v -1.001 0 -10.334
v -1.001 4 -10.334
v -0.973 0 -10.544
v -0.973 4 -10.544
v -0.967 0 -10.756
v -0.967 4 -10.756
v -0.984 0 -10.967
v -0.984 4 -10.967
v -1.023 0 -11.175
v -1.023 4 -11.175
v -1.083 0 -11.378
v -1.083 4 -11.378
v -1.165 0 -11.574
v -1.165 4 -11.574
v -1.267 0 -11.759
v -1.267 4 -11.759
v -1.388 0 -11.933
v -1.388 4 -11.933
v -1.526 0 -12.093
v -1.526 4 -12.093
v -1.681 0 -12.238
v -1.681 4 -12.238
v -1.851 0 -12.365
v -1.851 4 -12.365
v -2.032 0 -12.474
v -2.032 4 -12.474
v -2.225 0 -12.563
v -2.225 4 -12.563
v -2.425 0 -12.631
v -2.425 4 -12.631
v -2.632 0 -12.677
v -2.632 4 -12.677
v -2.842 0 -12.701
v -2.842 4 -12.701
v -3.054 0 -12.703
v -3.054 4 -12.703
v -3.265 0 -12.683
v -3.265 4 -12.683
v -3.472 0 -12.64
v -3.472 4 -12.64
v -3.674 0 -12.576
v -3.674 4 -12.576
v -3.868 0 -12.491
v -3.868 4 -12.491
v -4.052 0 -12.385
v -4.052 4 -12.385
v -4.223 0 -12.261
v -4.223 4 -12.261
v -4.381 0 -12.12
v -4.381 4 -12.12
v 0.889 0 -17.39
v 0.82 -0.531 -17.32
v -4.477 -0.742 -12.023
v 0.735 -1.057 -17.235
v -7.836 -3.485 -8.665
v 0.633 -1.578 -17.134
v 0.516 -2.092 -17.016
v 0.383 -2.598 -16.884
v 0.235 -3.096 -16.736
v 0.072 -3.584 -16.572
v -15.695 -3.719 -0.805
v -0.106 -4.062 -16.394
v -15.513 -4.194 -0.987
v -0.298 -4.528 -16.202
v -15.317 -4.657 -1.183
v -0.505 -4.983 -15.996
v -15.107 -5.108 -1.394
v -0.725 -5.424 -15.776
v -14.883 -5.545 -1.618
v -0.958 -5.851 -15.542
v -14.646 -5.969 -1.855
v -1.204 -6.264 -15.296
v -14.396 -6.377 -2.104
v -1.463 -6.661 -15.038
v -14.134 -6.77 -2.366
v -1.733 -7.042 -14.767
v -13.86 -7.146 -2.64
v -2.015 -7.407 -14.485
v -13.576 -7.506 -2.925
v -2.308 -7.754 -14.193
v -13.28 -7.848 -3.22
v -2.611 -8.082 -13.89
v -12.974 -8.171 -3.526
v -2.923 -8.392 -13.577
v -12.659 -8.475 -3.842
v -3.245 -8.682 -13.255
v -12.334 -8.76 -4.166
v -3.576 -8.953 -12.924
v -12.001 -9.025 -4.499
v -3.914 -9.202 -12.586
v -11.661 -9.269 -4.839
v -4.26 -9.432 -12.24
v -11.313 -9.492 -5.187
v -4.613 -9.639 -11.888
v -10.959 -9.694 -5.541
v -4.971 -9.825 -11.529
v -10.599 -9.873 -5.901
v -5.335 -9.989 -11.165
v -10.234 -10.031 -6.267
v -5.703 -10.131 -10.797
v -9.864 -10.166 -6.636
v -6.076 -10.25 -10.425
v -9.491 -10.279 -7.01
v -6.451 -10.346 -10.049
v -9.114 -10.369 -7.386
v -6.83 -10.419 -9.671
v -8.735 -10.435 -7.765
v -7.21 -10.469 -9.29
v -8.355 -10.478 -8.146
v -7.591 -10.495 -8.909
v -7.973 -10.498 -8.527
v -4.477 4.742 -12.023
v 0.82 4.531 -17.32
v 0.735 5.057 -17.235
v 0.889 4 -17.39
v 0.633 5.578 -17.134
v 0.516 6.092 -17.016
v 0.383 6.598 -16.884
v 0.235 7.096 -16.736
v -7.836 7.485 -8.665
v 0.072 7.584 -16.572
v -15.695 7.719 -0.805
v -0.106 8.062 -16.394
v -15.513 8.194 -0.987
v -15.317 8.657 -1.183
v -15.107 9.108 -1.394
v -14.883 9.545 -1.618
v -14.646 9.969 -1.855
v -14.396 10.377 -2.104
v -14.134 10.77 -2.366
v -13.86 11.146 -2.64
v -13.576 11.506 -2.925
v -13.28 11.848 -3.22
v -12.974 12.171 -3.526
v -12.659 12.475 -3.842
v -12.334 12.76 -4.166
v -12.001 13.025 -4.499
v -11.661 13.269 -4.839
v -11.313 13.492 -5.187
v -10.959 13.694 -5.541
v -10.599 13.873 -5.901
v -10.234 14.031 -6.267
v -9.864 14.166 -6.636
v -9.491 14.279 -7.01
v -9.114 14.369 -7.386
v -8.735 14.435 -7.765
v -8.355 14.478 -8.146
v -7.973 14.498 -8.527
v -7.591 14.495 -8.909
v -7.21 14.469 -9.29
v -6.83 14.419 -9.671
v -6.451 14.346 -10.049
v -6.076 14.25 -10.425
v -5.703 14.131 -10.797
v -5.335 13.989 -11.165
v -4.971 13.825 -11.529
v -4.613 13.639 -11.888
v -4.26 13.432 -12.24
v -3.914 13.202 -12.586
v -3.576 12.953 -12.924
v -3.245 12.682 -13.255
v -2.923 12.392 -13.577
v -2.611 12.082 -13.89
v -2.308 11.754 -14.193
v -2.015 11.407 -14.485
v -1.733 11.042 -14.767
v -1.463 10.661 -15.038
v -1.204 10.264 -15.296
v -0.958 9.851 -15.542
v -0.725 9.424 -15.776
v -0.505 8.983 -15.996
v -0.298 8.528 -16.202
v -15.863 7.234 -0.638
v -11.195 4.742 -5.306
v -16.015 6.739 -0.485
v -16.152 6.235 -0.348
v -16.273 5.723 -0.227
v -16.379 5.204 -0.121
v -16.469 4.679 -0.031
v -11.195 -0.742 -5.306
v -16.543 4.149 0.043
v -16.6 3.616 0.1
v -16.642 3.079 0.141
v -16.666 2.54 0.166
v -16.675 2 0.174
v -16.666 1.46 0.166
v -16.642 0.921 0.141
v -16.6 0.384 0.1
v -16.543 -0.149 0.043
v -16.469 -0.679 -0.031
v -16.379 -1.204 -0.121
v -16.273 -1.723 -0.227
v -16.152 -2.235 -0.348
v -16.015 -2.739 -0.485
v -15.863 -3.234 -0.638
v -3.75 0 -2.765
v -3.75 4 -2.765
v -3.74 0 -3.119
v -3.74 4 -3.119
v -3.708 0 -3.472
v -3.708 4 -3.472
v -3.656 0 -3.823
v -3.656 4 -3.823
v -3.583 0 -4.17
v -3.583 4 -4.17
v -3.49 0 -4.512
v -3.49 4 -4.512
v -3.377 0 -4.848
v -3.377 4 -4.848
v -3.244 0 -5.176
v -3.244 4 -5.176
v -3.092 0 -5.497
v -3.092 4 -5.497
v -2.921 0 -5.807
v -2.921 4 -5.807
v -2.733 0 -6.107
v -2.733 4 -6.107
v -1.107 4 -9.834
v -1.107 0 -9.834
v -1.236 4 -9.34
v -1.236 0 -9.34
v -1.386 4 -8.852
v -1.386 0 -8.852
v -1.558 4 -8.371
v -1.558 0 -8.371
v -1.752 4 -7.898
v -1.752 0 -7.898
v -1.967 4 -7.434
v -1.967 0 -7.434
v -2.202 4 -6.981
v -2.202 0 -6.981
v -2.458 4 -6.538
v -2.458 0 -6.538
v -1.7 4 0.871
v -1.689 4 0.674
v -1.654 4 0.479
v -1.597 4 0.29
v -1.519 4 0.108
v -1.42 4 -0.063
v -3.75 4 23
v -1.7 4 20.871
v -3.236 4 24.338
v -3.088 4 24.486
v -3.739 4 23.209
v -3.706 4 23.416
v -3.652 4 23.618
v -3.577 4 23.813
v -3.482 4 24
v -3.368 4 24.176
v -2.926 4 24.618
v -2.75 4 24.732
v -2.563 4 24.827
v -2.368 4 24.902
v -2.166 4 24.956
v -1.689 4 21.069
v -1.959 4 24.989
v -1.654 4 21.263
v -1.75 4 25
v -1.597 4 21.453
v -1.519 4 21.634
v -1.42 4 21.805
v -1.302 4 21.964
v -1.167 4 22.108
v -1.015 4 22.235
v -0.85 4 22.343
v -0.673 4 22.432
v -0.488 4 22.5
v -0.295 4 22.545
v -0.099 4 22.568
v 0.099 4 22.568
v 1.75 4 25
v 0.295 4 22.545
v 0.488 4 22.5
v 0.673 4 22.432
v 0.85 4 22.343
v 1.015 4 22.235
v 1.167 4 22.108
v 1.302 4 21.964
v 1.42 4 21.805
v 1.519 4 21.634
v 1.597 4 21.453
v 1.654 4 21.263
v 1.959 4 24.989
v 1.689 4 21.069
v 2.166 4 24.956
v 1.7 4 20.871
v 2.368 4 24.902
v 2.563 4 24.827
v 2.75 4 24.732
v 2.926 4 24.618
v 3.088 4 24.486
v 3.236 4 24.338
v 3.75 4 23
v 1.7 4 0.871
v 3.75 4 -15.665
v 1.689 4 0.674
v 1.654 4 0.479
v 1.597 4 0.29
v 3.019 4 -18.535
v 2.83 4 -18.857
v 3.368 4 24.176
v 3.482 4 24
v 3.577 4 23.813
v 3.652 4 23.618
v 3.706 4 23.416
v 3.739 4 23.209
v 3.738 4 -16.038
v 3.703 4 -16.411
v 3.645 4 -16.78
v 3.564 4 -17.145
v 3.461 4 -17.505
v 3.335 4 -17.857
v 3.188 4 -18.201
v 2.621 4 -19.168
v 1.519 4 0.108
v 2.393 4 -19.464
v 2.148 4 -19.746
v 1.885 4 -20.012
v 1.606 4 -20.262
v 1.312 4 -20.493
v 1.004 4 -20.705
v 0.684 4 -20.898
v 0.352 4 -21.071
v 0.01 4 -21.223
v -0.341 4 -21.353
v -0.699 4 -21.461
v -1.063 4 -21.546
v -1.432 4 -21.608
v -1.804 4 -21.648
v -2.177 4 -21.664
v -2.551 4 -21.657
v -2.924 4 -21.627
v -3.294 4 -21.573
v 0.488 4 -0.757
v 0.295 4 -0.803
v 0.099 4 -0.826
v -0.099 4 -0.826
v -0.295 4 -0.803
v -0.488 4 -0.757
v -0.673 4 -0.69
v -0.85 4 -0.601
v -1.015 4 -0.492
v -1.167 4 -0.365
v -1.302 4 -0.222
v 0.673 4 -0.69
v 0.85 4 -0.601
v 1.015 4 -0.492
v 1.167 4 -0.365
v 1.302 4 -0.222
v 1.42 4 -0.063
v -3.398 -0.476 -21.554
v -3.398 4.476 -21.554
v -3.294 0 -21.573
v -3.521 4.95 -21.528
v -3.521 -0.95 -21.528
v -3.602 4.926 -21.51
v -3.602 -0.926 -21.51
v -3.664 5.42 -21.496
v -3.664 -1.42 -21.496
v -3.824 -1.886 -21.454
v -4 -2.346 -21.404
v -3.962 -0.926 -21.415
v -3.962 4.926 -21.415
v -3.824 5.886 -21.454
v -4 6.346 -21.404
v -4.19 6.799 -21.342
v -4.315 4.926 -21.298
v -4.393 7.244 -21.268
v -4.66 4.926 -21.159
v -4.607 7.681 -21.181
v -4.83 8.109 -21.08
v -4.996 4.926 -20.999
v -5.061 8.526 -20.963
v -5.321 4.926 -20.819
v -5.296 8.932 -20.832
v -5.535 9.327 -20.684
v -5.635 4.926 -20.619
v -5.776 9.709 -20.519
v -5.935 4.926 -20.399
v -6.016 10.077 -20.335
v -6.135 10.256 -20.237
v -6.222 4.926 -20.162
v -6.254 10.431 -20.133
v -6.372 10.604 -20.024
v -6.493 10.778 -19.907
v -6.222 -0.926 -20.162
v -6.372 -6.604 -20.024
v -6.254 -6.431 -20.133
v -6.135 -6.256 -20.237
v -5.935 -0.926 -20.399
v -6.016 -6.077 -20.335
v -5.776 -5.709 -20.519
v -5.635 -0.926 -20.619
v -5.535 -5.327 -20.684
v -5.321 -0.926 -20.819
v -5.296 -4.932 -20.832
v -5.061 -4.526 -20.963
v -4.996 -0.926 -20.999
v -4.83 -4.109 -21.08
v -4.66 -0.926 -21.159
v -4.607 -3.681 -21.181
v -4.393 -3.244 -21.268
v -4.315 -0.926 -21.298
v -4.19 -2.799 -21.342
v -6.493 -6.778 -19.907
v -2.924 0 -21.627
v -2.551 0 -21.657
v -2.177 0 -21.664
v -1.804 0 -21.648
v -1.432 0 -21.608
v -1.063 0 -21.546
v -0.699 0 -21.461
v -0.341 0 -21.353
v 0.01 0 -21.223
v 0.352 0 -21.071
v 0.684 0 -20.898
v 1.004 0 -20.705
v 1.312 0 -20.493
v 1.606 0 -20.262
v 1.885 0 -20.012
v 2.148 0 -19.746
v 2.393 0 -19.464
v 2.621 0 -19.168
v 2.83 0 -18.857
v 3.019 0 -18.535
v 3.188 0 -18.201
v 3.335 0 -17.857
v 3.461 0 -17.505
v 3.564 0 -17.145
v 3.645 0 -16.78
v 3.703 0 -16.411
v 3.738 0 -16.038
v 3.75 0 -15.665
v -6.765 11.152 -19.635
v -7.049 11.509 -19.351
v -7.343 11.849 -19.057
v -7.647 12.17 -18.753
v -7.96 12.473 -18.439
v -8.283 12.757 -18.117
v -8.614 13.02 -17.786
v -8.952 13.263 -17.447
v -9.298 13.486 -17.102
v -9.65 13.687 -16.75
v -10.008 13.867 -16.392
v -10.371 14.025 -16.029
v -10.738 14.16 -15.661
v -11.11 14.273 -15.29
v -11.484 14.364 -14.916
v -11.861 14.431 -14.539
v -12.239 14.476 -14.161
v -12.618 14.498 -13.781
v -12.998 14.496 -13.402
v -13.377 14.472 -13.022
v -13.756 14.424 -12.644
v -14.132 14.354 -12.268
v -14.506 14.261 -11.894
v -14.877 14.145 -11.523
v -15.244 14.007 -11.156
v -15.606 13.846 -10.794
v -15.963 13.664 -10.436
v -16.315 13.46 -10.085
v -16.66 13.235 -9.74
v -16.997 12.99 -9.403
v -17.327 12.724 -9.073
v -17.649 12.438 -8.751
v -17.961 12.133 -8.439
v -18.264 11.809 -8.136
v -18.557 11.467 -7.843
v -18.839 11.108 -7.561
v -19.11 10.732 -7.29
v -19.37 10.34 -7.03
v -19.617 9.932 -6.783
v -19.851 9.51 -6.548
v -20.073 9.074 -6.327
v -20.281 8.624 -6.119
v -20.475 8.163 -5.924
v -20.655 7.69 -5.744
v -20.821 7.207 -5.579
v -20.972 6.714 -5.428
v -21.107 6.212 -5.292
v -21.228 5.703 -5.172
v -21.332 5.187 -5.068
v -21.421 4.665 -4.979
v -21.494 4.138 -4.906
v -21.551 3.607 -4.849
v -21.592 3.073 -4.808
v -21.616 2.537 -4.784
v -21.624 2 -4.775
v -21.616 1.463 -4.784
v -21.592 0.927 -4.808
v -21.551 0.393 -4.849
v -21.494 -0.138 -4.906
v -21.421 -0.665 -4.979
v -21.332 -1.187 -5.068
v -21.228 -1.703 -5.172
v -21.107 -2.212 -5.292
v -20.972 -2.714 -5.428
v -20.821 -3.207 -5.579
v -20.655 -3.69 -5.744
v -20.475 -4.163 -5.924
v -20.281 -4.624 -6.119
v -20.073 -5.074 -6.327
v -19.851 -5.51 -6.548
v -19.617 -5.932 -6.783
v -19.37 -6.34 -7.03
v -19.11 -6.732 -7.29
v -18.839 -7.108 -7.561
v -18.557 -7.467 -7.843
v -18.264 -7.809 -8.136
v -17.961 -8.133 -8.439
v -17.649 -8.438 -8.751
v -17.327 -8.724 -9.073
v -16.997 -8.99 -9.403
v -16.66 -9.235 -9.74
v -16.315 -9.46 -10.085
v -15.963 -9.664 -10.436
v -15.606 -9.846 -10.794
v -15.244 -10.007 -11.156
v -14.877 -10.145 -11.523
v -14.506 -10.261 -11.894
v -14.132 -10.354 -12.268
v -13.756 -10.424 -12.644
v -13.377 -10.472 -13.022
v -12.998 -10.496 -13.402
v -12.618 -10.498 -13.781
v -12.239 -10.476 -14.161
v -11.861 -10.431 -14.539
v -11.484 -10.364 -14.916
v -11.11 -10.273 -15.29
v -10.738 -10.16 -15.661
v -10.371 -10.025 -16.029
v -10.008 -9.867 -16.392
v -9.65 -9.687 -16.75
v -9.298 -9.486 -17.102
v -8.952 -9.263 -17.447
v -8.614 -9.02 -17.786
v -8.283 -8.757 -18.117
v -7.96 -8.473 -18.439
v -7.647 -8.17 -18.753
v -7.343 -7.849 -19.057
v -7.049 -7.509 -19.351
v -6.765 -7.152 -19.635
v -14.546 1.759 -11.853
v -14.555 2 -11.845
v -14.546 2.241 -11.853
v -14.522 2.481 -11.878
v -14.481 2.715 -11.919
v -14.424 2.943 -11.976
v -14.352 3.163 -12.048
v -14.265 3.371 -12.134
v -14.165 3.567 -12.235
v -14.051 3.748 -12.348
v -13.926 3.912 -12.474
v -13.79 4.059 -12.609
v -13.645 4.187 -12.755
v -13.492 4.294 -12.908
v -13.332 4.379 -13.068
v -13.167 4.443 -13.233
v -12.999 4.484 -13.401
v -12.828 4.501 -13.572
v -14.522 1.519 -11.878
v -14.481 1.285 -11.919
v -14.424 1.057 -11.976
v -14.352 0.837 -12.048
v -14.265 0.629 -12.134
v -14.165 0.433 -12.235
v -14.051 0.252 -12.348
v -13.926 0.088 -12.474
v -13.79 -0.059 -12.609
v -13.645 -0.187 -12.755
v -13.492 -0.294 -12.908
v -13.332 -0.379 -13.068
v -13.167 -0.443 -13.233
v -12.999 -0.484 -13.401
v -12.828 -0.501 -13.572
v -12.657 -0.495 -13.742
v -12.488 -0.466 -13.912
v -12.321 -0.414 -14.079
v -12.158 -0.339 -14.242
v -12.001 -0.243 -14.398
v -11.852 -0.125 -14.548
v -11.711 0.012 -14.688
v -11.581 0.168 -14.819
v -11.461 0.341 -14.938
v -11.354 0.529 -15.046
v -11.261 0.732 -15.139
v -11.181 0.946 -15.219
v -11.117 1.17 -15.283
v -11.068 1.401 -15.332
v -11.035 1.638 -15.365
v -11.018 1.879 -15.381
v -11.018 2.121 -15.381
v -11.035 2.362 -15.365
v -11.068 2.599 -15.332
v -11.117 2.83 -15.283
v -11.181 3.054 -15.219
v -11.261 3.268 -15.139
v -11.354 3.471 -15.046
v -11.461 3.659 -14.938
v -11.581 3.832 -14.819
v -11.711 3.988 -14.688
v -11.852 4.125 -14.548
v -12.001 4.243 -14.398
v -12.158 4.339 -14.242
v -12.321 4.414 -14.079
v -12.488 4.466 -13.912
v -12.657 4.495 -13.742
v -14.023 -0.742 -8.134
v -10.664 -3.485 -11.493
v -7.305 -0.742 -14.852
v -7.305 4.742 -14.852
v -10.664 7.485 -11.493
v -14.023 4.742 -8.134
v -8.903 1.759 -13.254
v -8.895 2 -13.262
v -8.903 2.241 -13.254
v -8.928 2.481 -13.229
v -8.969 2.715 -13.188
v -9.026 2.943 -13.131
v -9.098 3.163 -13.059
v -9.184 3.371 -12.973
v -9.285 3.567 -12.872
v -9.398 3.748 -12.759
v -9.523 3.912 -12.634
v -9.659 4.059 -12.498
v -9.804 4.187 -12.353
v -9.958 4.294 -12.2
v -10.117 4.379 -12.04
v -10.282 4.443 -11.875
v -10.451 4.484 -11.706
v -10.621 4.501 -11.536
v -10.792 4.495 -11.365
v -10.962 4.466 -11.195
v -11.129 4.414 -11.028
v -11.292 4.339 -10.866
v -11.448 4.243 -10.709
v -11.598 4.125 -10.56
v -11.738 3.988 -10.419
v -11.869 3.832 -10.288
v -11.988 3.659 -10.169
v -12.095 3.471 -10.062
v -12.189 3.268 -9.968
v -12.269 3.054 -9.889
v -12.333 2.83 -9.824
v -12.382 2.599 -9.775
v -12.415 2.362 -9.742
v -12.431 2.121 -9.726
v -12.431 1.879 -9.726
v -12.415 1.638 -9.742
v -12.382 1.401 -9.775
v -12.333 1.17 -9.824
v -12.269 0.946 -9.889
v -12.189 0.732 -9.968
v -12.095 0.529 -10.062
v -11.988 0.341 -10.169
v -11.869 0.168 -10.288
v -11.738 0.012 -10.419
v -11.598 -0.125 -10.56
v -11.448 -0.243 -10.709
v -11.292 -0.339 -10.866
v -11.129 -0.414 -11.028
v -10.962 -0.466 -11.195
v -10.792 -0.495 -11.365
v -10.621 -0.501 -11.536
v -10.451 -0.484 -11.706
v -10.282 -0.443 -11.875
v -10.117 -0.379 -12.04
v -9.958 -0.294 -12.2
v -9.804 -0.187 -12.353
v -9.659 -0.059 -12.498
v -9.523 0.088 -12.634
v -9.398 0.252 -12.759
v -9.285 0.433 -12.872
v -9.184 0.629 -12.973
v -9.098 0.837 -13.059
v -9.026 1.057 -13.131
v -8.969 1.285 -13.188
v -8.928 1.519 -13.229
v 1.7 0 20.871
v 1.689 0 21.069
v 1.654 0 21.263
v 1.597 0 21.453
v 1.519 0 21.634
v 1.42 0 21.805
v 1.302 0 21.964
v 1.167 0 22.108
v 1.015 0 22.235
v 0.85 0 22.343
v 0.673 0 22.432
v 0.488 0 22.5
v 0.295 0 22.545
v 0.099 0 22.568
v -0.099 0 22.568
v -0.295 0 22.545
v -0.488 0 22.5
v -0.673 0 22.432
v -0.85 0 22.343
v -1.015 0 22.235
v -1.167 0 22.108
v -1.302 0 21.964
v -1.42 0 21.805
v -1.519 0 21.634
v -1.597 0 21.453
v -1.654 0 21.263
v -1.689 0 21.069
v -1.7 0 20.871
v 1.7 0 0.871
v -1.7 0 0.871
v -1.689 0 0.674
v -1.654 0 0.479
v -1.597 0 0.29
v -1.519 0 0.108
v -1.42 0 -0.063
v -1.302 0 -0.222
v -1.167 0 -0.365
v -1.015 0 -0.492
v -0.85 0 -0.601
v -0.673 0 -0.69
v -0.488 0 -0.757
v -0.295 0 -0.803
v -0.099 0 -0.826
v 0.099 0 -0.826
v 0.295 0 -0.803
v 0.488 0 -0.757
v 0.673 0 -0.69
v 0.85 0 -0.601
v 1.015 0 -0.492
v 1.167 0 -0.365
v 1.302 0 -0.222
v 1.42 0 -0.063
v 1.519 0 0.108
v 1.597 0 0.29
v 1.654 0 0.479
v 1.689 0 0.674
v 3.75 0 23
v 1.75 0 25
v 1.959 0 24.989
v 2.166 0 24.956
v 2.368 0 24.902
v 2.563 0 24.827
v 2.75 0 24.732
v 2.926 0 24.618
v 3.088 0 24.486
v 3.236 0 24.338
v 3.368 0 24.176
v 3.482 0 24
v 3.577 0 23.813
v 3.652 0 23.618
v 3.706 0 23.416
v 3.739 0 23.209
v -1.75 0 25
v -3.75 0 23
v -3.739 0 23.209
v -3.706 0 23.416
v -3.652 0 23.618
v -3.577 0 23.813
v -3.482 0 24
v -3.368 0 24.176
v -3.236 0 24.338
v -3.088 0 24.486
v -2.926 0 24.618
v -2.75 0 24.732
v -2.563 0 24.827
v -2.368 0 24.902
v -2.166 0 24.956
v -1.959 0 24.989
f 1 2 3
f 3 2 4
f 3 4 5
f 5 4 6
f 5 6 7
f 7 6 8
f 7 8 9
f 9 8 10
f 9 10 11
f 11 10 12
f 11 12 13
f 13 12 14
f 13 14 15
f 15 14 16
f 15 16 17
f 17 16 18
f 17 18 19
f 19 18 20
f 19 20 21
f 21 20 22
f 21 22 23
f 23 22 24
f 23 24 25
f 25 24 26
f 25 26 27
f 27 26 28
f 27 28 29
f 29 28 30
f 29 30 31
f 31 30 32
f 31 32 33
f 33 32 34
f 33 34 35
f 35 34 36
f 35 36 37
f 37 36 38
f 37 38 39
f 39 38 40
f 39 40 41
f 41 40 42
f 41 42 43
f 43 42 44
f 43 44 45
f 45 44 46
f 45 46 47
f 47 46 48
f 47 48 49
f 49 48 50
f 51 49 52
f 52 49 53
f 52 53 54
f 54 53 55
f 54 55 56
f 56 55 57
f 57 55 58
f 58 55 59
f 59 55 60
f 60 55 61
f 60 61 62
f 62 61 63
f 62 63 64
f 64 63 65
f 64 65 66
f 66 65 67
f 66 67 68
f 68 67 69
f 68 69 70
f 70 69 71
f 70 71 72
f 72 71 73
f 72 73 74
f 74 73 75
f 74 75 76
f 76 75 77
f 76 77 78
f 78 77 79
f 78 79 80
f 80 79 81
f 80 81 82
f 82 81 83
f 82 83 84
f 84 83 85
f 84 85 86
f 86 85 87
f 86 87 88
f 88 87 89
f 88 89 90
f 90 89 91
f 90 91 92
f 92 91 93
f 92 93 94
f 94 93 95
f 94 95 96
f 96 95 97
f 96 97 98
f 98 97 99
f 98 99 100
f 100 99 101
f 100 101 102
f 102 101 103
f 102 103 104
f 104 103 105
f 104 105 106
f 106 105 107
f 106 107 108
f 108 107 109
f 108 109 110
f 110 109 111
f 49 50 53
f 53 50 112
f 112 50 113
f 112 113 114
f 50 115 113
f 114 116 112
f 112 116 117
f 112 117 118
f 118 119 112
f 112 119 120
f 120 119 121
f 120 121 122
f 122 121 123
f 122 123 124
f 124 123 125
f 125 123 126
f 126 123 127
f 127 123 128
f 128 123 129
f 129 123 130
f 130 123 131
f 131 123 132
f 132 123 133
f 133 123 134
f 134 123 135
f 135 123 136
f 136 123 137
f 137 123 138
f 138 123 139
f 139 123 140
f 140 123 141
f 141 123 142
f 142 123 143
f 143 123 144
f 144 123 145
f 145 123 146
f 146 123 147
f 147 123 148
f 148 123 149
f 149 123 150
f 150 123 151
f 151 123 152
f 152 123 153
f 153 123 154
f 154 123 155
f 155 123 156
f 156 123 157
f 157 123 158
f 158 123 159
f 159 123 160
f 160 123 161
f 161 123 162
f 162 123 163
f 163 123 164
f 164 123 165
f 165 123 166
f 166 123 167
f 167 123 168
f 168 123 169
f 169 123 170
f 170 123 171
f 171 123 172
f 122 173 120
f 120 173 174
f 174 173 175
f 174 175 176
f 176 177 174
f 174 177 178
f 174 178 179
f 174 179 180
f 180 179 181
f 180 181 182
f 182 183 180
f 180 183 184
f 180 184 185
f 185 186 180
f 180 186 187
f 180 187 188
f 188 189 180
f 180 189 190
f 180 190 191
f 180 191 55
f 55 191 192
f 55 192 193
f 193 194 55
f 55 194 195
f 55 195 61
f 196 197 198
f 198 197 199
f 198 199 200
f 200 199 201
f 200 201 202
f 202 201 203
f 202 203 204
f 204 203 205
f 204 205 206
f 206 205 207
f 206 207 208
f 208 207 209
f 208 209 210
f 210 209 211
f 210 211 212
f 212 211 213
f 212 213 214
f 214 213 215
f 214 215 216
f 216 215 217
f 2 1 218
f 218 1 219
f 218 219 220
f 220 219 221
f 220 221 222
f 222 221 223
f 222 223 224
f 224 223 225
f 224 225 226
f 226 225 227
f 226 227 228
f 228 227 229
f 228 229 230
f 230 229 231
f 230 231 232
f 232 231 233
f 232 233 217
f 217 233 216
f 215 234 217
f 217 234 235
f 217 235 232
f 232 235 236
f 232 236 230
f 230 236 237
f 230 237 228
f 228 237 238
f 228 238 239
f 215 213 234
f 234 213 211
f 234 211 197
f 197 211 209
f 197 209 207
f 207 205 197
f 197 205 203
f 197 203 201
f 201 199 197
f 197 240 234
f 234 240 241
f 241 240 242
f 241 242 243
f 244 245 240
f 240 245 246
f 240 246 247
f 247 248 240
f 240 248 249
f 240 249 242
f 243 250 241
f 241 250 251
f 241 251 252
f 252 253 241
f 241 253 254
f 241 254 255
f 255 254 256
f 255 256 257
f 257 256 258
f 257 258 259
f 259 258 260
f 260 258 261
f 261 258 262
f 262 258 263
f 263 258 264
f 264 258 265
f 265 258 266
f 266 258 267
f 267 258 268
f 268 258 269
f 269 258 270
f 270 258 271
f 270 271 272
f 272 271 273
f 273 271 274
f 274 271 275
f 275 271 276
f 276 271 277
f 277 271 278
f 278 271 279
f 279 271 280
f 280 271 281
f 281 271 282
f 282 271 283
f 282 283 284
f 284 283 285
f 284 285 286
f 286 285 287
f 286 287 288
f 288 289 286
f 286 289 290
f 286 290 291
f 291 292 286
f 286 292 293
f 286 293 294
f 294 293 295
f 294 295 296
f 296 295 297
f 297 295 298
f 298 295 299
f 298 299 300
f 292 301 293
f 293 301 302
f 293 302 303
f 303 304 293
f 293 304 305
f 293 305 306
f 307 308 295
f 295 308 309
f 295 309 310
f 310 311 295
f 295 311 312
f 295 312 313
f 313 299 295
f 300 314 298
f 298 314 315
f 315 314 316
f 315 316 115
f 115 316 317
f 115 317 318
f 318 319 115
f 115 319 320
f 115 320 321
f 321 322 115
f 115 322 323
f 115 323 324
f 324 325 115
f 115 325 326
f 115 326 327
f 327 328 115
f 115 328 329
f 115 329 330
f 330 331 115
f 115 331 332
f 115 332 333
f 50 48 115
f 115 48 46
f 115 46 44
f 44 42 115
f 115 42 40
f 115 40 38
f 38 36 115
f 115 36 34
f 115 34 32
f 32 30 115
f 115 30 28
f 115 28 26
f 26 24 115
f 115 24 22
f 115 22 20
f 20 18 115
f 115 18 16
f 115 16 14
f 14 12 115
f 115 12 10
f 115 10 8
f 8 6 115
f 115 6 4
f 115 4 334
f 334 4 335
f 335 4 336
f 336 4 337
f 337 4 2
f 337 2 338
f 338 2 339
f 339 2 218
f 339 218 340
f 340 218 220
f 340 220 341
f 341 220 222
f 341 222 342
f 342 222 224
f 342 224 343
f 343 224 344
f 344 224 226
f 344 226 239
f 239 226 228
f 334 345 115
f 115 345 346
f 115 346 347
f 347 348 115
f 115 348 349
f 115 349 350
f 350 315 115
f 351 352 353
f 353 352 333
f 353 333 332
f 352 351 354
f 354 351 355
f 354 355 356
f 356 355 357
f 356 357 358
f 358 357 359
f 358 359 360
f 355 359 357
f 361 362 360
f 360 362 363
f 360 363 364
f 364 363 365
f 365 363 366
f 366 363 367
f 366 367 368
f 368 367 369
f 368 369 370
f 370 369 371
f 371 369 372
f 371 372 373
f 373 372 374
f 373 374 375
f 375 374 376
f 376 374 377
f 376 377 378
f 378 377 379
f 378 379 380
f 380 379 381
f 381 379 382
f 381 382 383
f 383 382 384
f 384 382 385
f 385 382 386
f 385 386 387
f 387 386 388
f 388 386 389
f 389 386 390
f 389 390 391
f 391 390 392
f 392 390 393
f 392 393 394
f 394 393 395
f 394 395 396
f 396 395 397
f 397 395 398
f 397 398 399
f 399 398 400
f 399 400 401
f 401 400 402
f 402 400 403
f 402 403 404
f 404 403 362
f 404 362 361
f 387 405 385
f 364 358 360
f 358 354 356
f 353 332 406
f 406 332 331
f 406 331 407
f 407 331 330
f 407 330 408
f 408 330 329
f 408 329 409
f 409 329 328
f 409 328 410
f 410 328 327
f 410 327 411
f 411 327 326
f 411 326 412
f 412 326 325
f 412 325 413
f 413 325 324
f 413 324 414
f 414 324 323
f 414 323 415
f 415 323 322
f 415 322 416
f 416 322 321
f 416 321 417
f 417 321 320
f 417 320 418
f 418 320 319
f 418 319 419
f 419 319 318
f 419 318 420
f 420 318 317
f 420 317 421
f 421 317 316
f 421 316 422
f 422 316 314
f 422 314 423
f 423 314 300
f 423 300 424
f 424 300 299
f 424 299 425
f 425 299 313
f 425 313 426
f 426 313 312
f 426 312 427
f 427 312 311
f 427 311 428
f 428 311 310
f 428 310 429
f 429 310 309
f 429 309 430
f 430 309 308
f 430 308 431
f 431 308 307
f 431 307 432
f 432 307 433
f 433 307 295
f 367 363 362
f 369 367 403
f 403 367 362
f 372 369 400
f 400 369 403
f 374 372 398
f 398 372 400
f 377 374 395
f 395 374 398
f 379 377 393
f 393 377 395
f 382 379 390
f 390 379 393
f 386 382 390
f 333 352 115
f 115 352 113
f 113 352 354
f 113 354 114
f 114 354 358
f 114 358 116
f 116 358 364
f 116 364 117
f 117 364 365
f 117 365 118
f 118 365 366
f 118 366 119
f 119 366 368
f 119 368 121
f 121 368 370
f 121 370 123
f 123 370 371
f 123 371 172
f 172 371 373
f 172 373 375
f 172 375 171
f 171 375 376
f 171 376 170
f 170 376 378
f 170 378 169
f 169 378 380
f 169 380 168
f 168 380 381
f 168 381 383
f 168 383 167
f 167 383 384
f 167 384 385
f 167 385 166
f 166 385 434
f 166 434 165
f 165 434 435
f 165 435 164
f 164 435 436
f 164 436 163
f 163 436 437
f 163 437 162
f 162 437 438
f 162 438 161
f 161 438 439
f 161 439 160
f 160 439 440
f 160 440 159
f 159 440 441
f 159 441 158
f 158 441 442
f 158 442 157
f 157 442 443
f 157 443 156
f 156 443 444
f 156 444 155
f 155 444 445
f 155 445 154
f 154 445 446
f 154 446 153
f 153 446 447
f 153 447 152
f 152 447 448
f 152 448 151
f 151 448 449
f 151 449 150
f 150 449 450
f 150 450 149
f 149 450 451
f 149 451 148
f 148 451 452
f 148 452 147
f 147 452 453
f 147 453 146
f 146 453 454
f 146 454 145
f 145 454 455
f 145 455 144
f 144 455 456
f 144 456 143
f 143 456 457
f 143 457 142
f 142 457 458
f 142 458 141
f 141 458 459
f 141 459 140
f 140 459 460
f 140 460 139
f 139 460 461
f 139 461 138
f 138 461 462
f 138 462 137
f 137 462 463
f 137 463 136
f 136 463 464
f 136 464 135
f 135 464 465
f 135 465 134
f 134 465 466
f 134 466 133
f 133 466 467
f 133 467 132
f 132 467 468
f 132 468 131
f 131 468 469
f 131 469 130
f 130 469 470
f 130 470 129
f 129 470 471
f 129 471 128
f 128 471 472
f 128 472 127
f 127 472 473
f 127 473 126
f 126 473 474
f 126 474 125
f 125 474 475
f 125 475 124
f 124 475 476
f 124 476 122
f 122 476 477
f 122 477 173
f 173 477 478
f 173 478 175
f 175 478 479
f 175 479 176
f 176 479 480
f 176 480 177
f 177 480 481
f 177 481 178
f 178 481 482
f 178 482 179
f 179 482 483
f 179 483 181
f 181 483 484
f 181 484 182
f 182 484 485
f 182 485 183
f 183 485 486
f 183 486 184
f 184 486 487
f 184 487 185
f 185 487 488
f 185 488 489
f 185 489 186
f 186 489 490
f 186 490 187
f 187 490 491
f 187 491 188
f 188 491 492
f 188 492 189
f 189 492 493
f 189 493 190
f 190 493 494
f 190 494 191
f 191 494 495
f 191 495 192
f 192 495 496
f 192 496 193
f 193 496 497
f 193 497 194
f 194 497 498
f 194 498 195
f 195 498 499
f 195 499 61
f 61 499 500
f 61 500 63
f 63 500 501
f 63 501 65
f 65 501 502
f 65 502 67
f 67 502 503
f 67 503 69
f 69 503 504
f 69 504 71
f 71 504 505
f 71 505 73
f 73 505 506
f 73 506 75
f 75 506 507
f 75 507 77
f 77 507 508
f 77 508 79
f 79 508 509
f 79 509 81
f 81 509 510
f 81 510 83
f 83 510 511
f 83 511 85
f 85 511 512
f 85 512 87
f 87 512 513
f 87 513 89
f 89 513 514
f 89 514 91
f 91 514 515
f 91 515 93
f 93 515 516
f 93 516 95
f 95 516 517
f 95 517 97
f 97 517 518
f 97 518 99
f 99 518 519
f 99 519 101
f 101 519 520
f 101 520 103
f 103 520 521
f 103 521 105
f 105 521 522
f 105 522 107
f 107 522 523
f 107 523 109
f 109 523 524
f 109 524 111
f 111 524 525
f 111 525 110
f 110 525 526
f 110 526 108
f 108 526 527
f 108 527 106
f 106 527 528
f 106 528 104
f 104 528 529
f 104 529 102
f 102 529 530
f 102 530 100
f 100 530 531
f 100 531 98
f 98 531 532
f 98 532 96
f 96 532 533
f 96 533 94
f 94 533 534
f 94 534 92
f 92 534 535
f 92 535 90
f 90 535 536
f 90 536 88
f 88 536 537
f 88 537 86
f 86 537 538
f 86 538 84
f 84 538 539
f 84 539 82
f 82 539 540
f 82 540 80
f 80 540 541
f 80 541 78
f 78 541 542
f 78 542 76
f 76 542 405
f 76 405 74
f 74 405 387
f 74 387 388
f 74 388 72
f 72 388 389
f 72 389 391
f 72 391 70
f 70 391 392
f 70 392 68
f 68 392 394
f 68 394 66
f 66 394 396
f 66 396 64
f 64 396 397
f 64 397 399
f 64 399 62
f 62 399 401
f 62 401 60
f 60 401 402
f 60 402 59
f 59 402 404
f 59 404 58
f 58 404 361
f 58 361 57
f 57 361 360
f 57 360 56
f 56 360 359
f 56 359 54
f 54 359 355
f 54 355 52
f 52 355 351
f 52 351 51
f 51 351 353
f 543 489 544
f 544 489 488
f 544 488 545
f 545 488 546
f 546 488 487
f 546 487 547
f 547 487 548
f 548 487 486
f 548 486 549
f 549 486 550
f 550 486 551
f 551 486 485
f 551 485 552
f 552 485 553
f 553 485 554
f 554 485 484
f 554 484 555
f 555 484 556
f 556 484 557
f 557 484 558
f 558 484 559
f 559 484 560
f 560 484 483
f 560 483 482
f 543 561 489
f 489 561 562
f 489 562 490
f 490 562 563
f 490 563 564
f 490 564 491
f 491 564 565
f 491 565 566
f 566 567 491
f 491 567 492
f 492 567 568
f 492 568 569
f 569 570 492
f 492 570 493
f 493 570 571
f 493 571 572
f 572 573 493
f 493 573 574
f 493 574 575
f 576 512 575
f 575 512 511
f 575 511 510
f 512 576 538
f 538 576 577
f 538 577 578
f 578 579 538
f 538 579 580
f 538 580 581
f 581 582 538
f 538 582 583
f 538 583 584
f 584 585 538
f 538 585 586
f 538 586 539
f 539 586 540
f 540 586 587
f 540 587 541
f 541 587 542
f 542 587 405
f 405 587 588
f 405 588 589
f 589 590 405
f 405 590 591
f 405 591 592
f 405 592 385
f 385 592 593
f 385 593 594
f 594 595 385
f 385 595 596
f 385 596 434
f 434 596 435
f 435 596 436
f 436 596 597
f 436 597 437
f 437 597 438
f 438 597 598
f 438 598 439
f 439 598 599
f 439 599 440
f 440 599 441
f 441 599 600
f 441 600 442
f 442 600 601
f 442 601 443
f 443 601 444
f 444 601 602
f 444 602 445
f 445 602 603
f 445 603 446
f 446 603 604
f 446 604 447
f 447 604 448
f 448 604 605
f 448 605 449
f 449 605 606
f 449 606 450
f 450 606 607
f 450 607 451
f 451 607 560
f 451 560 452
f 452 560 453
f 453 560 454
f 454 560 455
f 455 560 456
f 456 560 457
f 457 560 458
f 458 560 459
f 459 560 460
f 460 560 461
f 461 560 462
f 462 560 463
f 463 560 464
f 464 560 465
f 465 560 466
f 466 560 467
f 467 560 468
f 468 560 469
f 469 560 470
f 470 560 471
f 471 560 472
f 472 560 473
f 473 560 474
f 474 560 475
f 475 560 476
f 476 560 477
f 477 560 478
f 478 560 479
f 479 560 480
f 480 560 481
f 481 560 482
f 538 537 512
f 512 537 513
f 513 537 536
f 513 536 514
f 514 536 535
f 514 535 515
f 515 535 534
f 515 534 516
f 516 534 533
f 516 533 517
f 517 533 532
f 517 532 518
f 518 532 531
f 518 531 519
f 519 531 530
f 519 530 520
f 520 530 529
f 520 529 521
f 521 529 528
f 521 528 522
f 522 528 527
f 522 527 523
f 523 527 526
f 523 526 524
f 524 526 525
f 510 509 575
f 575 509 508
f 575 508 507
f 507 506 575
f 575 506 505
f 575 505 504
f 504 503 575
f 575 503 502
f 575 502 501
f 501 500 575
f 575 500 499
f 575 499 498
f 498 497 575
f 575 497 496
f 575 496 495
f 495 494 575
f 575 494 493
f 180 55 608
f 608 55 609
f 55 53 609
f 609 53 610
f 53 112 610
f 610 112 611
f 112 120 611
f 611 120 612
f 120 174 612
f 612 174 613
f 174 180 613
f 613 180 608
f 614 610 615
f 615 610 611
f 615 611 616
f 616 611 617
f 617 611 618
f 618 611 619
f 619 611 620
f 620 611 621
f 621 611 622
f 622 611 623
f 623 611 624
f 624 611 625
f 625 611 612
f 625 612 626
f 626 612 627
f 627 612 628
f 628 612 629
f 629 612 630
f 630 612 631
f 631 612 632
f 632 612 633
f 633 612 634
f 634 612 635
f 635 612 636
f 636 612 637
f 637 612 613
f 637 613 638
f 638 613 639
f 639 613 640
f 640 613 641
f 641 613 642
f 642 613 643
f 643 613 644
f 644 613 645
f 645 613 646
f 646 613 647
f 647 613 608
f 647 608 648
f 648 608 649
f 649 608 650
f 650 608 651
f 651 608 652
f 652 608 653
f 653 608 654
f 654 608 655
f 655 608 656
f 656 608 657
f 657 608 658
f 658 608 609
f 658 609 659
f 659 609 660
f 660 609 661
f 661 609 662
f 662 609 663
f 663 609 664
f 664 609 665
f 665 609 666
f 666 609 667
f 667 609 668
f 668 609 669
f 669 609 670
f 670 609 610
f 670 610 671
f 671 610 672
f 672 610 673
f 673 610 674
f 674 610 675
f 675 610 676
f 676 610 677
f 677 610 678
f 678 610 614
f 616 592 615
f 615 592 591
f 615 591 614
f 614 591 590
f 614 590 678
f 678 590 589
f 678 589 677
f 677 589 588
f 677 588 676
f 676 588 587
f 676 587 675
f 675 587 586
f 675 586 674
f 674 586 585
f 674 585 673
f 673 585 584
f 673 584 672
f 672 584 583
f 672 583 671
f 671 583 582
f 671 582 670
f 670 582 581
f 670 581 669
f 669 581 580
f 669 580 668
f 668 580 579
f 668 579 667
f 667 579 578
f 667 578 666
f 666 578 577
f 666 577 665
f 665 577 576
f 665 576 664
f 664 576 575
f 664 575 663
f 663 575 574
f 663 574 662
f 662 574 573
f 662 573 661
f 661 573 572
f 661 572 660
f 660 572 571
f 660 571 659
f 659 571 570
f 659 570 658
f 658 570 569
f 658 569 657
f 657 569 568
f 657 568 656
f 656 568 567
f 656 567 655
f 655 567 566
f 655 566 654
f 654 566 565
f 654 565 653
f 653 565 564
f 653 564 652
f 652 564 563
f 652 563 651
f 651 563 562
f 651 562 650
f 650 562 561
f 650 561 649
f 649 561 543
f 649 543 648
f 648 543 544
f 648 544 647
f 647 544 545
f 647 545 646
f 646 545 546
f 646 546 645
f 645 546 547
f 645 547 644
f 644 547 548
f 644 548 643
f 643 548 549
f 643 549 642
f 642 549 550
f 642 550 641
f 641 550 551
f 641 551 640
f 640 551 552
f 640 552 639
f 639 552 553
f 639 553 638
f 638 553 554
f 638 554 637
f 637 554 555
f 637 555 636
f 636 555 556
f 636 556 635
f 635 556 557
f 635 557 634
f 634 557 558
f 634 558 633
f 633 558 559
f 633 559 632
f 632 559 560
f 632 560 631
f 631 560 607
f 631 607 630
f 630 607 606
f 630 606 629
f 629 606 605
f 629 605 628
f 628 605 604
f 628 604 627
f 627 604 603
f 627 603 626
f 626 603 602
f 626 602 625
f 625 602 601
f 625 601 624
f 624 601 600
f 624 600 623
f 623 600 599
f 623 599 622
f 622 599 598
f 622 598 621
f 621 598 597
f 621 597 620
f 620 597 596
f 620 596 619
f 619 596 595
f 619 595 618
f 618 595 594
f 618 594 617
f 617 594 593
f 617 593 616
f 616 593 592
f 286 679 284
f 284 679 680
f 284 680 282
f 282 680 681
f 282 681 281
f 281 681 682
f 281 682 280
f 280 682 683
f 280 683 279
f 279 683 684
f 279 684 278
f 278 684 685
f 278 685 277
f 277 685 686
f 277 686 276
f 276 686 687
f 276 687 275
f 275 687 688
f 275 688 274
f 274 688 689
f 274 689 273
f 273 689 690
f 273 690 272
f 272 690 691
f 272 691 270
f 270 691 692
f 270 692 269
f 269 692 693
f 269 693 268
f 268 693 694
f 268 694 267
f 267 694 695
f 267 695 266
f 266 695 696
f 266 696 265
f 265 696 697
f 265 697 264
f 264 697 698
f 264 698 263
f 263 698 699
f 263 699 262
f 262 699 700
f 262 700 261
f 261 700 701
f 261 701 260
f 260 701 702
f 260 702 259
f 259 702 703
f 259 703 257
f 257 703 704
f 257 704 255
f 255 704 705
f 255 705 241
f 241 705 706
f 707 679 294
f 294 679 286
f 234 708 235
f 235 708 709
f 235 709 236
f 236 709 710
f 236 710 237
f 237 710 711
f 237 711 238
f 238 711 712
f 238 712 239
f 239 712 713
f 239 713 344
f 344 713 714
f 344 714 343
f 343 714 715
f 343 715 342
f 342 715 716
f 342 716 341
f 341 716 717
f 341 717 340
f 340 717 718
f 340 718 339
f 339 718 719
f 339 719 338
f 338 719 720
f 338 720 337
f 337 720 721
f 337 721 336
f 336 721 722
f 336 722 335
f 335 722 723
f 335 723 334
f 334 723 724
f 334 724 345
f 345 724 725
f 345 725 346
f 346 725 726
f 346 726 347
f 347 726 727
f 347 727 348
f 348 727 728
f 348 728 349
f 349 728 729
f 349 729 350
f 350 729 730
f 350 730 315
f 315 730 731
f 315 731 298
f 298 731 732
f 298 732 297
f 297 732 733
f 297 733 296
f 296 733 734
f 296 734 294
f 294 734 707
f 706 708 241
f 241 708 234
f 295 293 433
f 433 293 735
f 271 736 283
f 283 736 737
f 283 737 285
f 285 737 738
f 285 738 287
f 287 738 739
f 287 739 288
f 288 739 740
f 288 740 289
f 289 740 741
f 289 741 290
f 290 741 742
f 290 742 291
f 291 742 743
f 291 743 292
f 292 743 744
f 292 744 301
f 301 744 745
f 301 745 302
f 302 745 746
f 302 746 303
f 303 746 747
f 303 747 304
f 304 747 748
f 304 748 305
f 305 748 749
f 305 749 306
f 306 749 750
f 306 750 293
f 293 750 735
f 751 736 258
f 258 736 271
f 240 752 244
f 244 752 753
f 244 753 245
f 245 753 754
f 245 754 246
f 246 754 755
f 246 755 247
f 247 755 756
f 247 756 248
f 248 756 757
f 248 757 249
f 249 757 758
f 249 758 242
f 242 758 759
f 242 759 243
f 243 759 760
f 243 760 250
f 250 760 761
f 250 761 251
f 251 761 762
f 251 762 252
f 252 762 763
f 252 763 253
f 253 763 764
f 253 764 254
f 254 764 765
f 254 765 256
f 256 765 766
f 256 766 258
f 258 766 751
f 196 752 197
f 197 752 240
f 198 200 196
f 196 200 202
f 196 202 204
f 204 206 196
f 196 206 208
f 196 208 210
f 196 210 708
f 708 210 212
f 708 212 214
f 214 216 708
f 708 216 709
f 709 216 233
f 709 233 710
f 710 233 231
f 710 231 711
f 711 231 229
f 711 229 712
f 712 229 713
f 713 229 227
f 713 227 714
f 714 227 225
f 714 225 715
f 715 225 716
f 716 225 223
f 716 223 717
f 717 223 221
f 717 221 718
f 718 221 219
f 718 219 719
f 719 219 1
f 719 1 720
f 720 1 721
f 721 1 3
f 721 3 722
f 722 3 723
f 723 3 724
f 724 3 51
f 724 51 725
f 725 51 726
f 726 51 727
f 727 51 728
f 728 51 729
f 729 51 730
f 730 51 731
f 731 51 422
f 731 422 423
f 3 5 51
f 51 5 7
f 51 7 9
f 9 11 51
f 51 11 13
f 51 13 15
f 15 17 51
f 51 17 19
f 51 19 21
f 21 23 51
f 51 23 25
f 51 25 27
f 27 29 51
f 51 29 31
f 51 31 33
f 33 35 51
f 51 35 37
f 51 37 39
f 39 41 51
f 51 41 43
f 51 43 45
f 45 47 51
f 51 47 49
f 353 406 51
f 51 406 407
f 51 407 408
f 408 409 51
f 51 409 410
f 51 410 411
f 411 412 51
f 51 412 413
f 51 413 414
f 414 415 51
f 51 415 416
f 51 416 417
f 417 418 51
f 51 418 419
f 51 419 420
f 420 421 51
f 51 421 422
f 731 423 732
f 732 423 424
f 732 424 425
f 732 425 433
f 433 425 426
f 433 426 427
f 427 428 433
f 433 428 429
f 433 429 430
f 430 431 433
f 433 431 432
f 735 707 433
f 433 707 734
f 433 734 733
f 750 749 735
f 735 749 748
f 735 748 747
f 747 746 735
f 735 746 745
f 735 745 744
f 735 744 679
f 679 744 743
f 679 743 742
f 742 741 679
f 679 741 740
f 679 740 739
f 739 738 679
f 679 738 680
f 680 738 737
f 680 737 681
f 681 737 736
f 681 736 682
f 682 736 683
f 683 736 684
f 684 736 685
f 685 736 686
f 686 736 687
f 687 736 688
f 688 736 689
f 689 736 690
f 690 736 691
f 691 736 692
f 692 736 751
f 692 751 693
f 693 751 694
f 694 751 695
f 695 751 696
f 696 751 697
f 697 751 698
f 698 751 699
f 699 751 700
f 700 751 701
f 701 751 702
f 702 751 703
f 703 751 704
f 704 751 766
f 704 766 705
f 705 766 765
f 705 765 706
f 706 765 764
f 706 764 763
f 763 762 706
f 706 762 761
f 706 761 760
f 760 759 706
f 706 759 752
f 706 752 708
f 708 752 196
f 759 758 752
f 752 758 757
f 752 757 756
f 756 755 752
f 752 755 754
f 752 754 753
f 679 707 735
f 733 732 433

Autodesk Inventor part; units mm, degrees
ref_plane "YZ Plane" through (0, 0, 0) normal (1, 0, 0) x (0, 1, 0)
ref_plane "XZ Plane" through (0, 0, 0) normal (0, 1, 0) x (-1, 0, 0)
ref_plane "XY Plane" through (0, 0, 0) normal (0, 0, 1) x (1, 0, 0)
sketch "Sketch1" plane through (0, 0, 0) normal (0, 1, 0) x (-1, 0, 0)
  line L0 (-3.75, -25) -> (-3.75, 23)
  line L1 (-1.75, 25) -> (1.75, 25)
  line L2 (3.75, 23) -> (3.75, -25)
  line L3 (3.75, -25) -> (-3.75, -25)
  line L4 (-3.75, -25) -> (3.75, 25) construction
  line L5 (-3.75, 25) -> (3.75, -25) construction
  line L6 (0, 0.8712) -> (0, 20.8712) construction
  line L7 (-1.7, 0.8712) -> (-1.7, 20.8712)
  line L8 (1.7, 20.8712) -> (1.7, 0.8712)
  arc A0 (-1.7, 0.8712) -> (1.7, 0.8712) centre (0, 0.8712) ccw
  arc A1 (1.7, 20.8712) -> (-1.7, 20.8712) centre (0, 20.8712) ccw
  arc A2 (3.75, 23) -> (1.75, 25) centre (1.75, 23) ccw
  arc A3 (-1.75, 25) -> (-3.75, 23) centre (-1.75, 23) ccw
  line L9 (-3.75, -25) -> (12.9085, -8.3415)
  line L10 (12.9085, -8.3415) -> (15.4834, -10.9164)
  line L11 (15.4834, -10.9164) -> (-1.1751, -27.5749)
  line L12 (-1.1751, -27.5749) -> (-3.75, -25)
  arc A4 (3.75, -4.8061) -> (3.75, -20.0848) centre (12.1805, -12.4455) ccw
  point P0 (0, 0)
  point P1 (0, 10.8712)
  point P2 (1.3998, -25)
  point P3 (3.75, -17.5)
  point P4 (2.627, -18.623)
  dimension "d0" = 7.5
  dimension "d1" = 50
  dimension "d2" = 20
  dimension "d3" = 1.7
  dimension "d4" = 2
  dimension "d8" = 45
extrude "Main Arm" add sketch "Sketch1" along normal blind 4 contours L9 A4 L2 L11 L3 | L0 A3 L1 A2 L2 A4 L9 | L9 L2 A4 | L2 L9 L10 L11 picked at (3.6165, -19.0676)
sketch "Pad holder" plane through (-15.4834, 0, -10.9164) normal (-0.7071068, 0, -0.7071068) x (-0.7071068, 0, 0.7071068)
  line L0 (-3.8154, 0) -> (-3.8154, 4) projected
  circle A0 centre (-3.8154, 2) radius 12.5
  point P0 (-3.2294, 0)
  dimension "d9" = 25
extrude "pad area" add sketch "Pad holder" against normal blind 7
hole "Hole1" at (-12.7855, 2, -13.6143) direction (0.7071068, 0, 0.7071068) diameter 5.0038 depth 7
sketch "Screw position" plane through (-10.5337, 0, -5.9666) normal (0.7071068, 0, 0.7071068) x (0.7071068, 0, -0.7071068)
  line L0 (3.8154, 0) -> (3.8154, 4) projected
  line L1 (3.8154, 7.4848) -> (8.5654, 4.7424)
  line L2 (8.5654, 4.7424) -> (8.5654, -0.7424)
  line L3 (8.5654, -0.7424) -> (3.8154, -3.4848)
  line L4 (3.8154, -3.4848) -> (-0.9346, -0.7424)
  line L5 (-0.9346, -0.7424) -> (-0.9346, 4.7424)
  line L6 (-0.9346, 4.7424) -> (3.8154, 7.4848)
  point P0 (3.2294, 0)
  point P1 (3.8154, 2)
  dimension "d21" = 9.5
extrude "Extrusion3" cut sketch "Screw position" against normal blind 4
fillet "Fillet1" radius 6 3 edges at (-1.3998, 2, -25) (3.75, 2, -25) (-3.75, 2, -4.8061)
fillet "Fillet2" radius 2 1 edges at (-1.1744, 2, -15.326)
properties part number "arm"
